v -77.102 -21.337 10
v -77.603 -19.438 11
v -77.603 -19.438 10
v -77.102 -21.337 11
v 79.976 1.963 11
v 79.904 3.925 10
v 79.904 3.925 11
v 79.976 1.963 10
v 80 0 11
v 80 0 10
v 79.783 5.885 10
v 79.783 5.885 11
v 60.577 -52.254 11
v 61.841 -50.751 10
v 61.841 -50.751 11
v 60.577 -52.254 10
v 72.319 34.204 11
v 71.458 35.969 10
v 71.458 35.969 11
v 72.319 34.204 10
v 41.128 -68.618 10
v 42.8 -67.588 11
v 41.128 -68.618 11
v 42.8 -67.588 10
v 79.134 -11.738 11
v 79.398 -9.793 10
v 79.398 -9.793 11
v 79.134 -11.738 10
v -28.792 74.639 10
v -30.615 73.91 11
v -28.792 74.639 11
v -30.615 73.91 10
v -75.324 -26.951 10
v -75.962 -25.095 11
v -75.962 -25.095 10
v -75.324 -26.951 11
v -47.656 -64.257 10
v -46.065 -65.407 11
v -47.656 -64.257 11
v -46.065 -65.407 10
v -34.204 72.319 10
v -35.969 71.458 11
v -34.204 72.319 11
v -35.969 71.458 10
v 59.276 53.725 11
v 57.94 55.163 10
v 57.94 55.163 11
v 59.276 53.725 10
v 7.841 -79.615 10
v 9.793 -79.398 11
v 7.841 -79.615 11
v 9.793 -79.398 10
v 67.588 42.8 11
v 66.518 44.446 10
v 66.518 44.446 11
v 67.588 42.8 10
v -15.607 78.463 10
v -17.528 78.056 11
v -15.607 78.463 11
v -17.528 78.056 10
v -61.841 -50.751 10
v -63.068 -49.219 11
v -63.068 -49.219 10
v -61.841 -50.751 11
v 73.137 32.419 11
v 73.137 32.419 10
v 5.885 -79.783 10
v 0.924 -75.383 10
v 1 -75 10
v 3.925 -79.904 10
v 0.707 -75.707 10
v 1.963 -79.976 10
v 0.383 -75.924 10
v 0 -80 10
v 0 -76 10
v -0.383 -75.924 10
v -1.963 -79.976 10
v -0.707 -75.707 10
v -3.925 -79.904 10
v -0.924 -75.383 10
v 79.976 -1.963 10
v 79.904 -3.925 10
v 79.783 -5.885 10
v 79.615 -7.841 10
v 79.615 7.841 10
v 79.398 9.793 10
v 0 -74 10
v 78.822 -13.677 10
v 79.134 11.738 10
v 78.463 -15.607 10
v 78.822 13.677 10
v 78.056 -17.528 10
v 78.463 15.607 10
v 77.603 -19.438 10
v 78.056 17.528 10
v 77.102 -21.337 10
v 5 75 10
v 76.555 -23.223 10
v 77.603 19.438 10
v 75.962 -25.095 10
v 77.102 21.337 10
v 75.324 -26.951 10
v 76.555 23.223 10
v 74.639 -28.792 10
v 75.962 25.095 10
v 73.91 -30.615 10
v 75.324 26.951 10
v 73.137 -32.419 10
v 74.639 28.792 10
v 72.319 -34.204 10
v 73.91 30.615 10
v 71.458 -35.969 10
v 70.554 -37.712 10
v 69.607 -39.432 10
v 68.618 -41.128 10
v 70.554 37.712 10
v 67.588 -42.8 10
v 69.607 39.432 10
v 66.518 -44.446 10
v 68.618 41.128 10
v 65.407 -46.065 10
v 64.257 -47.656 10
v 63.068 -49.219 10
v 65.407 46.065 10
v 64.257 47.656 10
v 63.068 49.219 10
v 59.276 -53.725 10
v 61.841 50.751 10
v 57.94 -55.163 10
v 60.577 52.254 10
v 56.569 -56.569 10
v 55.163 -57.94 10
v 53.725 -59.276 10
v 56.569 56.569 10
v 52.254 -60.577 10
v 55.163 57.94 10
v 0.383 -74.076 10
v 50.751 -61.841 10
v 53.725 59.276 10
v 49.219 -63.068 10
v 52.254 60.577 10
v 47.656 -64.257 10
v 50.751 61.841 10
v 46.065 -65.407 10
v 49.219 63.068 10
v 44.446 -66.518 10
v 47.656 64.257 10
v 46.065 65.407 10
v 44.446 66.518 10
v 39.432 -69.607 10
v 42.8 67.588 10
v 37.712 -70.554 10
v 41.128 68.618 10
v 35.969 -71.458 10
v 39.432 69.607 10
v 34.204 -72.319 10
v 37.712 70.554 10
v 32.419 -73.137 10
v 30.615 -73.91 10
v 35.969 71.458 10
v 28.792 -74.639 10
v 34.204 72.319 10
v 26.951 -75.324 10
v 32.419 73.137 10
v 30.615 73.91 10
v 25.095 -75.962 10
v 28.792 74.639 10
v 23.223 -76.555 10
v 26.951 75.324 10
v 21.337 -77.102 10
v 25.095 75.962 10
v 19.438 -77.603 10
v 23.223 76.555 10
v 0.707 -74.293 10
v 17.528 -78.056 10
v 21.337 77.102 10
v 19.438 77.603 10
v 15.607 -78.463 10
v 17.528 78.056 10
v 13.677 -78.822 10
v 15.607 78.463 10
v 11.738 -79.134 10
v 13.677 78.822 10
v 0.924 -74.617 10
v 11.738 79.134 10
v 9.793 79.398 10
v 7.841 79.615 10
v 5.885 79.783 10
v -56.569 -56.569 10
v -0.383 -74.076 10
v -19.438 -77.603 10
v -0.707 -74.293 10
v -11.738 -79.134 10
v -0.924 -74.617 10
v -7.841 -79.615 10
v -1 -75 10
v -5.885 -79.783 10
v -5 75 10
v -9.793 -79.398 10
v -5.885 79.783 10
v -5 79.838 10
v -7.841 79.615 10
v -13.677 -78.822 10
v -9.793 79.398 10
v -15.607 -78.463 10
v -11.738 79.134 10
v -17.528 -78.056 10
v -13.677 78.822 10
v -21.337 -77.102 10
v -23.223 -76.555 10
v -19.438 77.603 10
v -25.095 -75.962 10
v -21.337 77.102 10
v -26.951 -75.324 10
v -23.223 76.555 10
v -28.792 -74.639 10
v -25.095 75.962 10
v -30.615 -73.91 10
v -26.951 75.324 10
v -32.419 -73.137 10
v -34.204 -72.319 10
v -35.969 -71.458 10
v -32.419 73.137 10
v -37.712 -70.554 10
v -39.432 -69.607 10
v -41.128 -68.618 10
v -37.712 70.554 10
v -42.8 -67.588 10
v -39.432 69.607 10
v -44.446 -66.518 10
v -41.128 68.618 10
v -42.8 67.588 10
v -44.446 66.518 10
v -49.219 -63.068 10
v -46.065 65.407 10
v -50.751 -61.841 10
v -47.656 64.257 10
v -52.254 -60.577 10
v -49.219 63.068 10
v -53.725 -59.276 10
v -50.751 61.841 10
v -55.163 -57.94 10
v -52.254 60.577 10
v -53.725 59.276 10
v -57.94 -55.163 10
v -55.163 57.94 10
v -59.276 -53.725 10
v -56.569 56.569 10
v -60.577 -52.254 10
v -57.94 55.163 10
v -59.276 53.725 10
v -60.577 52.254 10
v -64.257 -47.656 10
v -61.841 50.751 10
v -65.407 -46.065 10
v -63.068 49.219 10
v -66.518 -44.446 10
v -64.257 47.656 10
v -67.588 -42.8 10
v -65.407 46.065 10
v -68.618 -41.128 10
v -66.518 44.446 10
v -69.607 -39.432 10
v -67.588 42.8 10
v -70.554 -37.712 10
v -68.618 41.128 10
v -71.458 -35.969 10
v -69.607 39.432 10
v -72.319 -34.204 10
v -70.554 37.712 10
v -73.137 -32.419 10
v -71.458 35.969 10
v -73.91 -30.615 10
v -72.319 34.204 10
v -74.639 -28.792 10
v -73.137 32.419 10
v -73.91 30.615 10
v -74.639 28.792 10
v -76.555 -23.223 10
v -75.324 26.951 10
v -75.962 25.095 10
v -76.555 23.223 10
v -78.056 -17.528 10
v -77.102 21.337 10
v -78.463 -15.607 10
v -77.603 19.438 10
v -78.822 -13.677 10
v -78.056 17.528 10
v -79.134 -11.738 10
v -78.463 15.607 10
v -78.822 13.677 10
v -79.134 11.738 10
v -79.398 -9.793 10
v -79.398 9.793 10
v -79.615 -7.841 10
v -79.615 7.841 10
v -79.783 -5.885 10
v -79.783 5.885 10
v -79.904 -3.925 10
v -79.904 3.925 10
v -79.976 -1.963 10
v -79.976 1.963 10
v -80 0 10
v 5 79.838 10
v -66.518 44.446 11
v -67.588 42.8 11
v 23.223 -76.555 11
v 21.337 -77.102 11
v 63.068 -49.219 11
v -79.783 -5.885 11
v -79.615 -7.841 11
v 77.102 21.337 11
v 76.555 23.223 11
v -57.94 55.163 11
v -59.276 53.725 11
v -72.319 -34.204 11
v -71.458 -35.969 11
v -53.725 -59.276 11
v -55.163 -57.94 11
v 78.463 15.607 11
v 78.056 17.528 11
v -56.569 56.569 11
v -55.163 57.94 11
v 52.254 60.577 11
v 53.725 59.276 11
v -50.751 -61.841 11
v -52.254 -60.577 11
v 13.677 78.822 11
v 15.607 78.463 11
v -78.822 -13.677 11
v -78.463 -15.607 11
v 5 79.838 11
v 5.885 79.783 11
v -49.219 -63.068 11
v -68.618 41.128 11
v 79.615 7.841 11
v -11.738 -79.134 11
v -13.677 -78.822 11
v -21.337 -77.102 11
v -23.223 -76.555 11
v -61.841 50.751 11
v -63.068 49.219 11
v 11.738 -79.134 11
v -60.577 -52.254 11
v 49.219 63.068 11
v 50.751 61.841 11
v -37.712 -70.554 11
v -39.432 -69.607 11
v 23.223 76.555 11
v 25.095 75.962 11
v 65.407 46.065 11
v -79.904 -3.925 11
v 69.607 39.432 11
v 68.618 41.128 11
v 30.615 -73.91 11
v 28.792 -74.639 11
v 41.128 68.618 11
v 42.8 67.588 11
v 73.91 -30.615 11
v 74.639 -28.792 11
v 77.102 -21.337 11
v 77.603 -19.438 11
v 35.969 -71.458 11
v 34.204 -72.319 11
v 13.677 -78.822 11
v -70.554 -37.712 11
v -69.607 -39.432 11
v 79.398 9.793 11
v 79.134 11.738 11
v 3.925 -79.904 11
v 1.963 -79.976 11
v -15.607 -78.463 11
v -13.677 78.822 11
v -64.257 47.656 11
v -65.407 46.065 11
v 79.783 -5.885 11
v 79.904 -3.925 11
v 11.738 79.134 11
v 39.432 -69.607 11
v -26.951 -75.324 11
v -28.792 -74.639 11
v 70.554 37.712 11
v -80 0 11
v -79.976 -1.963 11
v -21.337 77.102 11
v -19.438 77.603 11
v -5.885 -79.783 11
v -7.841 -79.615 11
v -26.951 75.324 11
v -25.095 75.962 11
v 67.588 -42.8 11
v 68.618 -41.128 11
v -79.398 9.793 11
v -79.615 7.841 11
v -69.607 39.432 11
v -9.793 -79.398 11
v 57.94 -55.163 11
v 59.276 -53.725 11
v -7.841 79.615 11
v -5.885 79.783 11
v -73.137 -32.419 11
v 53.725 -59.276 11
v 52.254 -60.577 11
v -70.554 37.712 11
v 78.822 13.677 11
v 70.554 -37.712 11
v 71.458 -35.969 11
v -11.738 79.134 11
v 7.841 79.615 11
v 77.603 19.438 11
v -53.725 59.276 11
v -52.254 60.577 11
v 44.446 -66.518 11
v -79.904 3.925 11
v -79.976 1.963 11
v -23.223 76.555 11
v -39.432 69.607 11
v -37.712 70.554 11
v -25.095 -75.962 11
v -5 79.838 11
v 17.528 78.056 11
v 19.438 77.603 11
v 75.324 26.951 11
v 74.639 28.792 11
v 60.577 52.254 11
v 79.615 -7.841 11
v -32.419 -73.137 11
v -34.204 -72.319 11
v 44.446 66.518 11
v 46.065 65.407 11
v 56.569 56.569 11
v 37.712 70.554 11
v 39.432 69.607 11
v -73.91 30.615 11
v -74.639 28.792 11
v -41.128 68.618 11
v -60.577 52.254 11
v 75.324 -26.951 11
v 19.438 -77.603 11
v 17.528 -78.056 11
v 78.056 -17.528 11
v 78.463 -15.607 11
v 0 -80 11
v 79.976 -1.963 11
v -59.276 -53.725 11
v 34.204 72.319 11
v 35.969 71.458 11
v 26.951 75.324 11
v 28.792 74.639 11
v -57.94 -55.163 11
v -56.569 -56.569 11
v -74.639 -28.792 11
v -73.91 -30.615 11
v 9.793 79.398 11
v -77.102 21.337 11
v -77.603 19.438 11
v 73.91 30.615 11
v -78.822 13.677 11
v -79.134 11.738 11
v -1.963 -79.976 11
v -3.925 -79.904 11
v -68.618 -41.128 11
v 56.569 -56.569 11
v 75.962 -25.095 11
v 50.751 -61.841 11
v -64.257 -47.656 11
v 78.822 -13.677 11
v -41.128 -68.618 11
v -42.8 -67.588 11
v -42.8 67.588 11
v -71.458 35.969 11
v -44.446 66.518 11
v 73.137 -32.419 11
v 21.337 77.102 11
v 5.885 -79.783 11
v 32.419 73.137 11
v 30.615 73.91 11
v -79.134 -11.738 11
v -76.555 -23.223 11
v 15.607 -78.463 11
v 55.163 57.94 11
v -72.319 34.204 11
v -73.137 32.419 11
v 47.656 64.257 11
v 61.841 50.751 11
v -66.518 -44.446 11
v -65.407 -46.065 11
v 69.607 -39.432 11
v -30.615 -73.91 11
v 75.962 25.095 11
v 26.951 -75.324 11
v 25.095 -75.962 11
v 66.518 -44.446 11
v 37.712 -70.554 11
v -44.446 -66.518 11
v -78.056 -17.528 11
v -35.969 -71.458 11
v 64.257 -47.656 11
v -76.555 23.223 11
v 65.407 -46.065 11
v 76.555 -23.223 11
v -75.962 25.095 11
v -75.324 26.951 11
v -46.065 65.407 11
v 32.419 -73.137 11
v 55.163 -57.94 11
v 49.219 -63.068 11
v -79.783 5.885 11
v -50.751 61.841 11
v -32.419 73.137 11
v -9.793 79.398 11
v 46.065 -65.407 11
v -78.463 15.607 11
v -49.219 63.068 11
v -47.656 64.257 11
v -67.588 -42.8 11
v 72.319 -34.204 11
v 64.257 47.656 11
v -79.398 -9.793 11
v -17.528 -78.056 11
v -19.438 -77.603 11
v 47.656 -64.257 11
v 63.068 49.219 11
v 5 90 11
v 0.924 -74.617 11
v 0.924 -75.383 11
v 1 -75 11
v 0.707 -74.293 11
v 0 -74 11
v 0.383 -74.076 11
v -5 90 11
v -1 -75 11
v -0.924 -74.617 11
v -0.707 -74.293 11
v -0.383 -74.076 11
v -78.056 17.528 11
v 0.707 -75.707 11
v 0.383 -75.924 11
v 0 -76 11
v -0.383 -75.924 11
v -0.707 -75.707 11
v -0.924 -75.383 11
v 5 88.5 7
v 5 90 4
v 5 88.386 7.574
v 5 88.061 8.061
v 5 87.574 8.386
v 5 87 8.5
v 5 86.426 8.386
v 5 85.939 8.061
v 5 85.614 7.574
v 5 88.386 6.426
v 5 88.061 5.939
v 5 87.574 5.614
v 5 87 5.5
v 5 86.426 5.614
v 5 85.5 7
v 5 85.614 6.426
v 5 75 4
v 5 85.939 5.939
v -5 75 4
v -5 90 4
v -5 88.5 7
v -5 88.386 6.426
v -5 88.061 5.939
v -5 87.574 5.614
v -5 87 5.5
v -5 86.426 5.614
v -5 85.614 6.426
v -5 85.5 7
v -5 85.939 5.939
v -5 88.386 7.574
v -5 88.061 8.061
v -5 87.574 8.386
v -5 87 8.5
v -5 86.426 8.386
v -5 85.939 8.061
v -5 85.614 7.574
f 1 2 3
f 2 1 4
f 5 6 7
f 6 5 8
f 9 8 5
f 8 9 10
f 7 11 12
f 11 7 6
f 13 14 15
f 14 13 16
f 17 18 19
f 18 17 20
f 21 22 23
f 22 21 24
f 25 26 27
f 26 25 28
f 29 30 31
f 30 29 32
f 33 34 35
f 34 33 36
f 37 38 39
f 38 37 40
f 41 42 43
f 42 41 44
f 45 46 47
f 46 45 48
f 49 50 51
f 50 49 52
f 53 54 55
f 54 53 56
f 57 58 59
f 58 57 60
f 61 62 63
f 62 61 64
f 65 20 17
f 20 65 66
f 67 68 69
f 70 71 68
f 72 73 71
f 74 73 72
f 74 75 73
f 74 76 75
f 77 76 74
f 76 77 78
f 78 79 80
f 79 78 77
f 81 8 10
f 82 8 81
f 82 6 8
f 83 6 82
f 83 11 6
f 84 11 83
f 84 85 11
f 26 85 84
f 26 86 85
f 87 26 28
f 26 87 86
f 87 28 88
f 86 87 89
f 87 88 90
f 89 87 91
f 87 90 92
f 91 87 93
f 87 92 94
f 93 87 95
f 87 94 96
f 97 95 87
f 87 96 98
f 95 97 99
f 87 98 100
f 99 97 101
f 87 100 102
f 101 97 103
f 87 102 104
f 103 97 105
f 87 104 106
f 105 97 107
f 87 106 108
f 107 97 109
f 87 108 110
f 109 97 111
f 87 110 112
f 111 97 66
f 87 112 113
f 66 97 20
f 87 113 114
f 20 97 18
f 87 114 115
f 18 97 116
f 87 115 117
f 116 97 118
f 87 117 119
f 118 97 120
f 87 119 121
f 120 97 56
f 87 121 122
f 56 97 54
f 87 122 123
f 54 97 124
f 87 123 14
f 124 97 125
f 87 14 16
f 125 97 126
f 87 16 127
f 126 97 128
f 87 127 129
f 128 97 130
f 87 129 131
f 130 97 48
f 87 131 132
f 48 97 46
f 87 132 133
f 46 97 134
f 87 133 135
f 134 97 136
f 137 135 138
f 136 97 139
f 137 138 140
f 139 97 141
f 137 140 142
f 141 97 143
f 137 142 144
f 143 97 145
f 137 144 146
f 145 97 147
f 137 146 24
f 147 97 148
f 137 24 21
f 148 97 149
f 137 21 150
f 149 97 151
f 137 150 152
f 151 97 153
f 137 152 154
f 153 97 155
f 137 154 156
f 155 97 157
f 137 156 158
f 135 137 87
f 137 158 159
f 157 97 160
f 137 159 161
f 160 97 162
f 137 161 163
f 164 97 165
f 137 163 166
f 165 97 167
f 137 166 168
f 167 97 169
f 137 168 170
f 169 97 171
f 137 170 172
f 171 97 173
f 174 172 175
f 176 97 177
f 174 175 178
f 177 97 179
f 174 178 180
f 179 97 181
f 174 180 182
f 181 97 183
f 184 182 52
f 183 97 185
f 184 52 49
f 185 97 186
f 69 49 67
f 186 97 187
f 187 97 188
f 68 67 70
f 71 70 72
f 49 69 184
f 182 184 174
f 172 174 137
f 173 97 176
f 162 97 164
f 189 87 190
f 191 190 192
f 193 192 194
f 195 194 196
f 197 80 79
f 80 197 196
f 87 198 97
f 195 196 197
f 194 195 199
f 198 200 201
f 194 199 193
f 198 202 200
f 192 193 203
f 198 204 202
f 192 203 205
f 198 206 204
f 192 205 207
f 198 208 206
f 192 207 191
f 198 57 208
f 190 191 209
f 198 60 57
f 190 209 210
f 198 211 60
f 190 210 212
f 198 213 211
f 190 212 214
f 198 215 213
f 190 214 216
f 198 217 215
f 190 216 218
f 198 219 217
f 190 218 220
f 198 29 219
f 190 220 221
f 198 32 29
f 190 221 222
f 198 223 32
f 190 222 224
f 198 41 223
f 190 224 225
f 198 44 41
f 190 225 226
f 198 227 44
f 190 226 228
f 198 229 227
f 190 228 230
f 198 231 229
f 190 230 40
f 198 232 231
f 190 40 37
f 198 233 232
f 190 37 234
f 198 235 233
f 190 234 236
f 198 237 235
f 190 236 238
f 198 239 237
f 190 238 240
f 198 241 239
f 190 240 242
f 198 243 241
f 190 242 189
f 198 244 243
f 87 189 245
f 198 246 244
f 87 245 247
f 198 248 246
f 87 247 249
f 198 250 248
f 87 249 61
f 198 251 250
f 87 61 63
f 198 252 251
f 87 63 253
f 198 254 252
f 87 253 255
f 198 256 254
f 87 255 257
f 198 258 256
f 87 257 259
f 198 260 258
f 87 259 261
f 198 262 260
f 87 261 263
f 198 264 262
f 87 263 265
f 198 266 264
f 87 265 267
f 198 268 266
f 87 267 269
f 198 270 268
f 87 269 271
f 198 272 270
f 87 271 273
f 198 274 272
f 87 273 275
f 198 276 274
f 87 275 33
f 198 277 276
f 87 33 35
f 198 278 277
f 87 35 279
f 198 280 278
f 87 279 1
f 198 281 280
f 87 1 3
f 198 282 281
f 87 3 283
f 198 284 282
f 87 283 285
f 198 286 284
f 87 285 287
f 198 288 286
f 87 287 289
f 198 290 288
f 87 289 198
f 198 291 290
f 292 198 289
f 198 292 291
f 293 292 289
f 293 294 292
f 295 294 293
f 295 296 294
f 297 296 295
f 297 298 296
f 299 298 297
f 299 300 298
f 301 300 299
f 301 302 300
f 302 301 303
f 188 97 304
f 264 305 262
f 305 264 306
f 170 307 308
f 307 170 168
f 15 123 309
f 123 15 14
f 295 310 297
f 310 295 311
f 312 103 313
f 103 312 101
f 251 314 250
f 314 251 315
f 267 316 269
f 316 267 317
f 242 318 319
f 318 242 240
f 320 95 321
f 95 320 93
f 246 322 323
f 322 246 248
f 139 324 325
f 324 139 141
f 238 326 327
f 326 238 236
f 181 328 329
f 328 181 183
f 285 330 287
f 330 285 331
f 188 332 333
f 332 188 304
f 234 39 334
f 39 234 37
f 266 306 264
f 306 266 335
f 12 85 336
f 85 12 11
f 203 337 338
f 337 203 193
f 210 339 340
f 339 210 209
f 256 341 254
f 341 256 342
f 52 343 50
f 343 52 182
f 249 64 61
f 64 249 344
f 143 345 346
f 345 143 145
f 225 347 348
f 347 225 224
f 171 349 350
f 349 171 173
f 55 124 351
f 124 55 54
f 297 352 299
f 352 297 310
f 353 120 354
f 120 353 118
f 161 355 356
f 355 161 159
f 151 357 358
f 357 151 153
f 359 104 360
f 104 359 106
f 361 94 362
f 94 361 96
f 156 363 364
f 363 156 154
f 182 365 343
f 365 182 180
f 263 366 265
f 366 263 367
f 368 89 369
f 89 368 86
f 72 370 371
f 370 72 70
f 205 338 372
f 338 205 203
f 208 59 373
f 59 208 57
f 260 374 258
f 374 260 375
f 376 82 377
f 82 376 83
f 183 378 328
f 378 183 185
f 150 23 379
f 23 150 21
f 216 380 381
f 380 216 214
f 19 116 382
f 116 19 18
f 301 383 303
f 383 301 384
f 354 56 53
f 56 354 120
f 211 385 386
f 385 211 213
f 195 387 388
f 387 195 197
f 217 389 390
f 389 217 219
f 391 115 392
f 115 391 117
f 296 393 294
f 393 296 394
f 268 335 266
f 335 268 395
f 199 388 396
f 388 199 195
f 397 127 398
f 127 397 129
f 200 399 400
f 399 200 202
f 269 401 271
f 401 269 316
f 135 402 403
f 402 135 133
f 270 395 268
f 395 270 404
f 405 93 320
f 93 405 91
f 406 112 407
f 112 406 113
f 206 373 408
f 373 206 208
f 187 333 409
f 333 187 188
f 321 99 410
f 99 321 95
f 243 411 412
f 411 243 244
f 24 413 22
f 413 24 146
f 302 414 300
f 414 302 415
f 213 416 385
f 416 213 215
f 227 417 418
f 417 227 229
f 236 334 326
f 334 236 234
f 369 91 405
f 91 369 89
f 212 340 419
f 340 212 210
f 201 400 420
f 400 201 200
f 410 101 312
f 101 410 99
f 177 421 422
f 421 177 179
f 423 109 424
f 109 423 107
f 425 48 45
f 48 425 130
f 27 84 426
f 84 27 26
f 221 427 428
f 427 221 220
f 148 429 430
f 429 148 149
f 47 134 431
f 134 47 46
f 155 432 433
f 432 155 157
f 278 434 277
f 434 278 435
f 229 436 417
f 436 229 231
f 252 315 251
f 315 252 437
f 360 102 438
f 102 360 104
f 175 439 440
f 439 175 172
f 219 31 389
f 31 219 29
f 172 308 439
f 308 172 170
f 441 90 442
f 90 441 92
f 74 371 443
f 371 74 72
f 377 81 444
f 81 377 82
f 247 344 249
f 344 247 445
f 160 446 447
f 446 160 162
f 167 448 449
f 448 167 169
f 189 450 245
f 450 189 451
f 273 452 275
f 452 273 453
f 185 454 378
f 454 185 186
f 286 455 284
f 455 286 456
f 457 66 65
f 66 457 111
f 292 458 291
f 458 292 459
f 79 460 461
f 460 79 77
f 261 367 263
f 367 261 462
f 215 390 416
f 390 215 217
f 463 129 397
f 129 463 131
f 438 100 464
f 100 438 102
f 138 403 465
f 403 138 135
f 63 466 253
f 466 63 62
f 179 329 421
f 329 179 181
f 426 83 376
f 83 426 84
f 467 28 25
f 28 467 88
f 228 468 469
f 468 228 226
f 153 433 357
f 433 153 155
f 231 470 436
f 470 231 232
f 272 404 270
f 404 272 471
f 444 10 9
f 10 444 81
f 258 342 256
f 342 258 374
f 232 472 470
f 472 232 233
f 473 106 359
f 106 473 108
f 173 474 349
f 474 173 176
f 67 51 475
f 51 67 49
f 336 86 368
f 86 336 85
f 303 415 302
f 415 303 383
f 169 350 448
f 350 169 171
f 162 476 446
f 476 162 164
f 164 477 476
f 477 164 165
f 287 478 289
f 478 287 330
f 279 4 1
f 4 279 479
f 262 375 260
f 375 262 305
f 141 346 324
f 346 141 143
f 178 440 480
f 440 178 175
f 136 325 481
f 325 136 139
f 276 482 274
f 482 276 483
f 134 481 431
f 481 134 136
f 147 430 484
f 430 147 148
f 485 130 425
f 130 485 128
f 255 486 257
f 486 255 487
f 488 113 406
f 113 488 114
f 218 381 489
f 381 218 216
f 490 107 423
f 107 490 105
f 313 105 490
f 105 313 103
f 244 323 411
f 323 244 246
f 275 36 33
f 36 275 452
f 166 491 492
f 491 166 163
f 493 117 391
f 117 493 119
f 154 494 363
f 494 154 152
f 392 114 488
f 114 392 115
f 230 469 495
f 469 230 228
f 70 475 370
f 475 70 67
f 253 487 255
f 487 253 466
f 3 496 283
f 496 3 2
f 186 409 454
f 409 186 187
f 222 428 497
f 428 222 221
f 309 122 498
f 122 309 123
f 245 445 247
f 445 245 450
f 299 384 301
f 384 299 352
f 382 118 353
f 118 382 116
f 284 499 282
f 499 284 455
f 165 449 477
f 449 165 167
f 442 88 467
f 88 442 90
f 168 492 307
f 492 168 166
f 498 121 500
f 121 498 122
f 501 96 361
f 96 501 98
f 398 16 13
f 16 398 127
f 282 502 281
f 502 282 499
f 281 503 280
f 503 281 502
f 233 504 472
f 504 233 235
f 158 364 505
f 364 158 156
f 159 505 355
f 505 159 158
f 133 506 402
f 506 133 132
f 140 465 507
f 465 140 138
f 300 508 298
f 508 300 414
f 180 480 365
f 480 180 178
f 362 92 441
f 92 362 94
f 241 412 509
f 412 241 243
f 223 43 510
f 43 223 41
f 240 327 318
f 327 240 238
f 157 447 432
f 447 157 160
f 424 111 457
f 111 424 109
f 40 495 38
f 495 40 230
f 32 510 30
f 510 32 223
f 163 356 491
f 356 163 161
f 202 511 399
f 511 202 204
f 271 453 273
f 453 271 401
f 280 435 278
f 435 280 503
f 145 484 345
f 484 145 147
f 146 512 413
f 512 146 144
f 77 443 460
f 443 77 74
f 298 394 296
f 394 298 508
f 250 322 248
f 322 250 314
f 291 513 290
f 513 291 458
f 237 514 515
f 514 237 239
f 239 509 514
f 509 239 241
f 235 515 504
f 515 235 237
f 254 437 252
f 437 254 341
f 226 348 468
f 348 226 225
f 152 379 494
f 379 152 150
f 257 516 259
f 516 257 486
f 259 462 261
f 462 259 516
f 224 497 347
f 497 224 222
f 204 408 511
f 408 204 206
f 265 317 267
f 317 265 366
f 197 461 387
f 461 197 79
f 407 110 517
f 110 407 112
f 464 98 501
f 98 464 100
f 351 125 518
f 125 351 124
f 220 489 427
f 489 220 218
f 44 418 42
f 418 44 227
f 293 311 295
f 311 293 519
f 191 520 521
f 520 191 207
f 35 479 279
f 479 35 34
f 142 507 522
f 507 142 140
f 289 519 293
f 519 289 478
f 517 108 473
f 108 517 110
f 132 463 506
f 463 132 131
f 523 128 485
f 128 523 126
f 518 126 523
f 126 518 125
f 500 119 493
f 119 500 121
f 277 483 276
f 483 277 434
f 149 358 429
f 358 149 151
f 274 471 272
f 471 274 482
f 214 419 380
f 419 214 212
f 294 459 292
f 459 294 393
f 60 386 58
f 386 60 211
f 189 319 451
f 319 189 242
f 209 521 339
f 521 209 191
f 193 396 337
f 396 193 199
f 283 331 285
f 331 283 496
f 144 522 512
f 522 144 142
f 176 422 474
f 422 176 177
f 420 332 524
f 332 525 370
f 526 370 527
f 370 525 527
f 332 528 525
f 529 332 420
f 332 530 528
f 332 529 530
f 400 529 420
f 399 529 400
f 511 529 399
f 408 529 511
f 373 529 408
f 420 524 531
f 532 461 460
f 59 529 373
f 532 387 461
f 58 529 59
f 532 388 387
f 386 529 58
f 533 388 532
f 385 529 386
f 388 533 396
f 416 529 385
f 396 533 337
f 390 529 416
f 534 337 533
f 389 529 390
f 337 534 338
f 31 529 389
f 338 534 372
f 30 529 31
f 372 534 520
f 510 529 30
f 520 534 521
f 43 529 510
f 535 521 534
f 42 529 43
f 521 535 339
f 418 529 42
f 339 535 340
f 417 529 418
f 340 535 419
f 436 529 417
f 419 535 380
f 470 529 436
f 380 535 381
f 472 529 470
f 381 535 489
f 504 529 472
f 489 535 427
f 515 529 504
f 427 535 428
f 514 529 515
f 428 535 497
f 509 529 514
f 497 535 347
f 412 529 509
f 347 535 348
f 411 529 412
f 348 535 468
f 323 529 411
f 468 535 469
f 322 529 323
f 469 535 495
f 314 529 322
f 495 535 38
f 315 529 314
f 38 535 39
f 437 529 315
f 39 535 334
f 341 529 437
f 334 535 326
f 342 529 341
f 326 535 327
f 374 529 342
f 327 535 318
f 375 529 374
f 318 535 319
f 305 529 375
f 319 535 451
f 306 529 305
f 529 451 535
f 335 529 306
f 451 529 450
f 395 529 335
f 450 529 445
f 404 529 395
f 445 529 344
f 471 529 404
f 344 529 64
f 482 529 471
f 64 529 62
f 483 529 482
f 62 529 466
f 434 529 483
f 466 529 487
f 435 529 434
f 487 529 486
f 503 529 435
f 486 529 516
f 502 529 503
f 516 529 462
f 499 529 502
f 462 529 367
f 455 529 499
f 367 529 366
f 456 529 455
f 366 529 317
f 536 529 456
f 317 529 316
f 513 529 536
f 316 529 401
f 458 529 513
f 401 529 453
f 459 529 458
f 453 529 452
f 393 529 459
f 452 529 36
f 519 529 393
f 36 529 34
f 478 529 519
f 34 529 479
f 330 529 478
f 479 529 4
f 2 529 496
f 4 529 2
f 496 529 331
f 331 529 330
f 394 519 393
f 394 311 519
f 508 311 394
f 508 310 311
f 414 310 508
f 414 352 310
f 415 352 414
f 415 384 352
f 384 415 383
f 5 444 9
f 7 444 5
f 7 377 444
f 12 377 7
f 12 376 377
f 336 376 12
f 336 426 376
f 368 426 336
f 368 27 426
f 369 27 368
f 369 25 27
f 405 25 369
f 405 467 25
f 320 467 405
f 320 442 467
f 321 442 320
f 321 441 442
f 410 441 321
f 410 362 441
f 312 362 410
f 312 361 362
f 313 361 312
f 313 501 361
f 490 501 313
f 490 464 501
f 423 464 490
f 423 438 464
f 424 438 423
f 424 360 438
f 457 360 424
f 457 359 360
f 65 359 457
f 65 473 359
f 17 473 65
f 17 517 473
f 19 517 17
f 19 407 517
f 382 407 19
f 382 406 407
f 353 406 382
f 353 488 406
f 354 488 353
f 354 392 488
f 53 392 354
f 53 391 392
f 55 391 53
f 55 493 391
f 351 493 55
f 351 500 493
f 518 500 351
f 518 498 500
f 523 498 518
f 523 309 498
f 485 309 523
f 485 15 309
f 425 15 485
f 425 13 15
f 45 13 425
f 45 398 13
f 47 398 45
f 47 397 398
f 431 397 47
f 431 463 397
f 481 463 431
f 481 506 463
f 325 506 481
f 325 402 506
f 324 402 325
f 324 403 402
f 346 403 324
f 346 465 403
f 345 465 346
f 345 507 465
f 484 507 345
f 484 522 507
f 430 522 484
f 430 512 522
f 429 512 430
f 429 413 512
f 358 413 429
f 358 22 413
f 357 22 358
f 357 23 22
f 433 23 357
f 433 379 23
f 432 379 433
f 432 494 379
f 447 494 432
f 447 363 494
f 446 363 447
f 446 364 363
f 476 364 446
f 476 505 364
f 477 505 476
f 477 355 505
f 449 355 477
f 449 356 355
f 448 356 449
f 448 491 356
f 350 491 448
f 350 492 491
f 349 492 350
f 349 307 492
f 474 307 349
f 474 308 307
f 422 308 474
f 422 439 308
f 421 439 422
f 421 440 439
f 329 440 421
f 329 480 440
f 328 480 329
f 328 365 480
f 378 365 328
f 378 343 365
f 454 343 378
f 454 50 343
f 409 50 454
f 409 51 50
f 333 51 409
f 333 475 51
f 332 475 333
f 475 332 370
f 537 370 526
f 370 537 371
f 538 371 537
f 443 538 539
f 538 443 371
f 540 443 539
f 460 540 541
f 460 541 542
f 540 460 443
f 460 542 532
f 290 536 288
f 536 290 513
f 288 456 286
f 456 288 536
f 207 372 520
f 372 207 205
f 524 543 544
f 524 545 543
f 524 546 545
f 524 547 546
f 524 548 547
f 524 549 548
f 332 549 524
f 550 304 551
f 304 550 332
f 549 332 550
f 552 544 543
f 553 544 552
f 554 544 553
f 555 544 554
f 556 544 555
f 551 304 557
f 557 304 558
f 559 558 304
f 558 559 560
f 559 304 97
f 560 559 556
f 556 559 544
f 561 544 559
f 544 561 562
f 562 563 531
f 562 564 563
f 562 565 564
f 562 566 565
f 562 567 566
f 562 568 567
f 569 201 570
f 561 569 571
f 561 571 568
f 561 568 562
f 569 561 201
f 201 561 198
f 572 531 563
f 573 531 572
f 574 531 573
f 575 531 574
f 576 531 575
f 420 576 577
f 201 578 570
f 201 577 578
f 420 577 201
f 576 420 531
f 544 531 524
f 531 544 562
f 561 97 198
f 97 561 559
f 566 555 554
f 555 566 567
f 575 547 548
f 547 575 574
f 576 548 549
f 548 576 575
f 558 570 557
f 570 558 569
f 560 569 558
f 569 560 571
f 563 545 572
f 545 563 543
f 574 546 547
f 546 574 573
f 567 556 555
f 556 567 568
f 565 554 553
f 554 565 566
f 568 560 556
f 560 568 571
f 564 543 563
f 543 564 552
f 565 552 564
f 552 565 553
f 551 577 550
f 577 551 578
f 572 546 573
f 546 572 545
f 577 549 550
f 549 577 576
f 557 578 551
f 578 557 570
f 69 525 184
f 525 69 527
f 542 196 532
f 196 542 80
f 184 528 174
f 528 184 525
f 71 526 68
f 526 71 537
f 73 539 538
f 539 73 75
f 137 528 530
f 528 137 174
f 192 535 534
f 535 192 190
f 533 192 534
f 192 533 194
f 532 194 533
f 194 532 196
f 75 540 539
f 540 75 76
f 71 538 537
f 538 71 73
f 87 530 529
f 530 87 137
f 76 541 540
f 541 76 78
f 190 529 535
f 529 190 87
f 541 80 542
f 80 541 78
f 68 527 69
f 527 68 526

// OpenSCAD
$fn=256;


difference(){
union(){
translate([0,0,10])
cylinder(d=160,h=1);
translate([0,82.5,7.5])
cube([10,15,7],center=true);
}
translate([0,87,7])
rotate([0,90,0])
cylinder(d=3,h=50,center=true,$fn=16);
    translate([0,-80+5,0])
cylinder(d=2,h=50,center=true,$fn=16);
}
